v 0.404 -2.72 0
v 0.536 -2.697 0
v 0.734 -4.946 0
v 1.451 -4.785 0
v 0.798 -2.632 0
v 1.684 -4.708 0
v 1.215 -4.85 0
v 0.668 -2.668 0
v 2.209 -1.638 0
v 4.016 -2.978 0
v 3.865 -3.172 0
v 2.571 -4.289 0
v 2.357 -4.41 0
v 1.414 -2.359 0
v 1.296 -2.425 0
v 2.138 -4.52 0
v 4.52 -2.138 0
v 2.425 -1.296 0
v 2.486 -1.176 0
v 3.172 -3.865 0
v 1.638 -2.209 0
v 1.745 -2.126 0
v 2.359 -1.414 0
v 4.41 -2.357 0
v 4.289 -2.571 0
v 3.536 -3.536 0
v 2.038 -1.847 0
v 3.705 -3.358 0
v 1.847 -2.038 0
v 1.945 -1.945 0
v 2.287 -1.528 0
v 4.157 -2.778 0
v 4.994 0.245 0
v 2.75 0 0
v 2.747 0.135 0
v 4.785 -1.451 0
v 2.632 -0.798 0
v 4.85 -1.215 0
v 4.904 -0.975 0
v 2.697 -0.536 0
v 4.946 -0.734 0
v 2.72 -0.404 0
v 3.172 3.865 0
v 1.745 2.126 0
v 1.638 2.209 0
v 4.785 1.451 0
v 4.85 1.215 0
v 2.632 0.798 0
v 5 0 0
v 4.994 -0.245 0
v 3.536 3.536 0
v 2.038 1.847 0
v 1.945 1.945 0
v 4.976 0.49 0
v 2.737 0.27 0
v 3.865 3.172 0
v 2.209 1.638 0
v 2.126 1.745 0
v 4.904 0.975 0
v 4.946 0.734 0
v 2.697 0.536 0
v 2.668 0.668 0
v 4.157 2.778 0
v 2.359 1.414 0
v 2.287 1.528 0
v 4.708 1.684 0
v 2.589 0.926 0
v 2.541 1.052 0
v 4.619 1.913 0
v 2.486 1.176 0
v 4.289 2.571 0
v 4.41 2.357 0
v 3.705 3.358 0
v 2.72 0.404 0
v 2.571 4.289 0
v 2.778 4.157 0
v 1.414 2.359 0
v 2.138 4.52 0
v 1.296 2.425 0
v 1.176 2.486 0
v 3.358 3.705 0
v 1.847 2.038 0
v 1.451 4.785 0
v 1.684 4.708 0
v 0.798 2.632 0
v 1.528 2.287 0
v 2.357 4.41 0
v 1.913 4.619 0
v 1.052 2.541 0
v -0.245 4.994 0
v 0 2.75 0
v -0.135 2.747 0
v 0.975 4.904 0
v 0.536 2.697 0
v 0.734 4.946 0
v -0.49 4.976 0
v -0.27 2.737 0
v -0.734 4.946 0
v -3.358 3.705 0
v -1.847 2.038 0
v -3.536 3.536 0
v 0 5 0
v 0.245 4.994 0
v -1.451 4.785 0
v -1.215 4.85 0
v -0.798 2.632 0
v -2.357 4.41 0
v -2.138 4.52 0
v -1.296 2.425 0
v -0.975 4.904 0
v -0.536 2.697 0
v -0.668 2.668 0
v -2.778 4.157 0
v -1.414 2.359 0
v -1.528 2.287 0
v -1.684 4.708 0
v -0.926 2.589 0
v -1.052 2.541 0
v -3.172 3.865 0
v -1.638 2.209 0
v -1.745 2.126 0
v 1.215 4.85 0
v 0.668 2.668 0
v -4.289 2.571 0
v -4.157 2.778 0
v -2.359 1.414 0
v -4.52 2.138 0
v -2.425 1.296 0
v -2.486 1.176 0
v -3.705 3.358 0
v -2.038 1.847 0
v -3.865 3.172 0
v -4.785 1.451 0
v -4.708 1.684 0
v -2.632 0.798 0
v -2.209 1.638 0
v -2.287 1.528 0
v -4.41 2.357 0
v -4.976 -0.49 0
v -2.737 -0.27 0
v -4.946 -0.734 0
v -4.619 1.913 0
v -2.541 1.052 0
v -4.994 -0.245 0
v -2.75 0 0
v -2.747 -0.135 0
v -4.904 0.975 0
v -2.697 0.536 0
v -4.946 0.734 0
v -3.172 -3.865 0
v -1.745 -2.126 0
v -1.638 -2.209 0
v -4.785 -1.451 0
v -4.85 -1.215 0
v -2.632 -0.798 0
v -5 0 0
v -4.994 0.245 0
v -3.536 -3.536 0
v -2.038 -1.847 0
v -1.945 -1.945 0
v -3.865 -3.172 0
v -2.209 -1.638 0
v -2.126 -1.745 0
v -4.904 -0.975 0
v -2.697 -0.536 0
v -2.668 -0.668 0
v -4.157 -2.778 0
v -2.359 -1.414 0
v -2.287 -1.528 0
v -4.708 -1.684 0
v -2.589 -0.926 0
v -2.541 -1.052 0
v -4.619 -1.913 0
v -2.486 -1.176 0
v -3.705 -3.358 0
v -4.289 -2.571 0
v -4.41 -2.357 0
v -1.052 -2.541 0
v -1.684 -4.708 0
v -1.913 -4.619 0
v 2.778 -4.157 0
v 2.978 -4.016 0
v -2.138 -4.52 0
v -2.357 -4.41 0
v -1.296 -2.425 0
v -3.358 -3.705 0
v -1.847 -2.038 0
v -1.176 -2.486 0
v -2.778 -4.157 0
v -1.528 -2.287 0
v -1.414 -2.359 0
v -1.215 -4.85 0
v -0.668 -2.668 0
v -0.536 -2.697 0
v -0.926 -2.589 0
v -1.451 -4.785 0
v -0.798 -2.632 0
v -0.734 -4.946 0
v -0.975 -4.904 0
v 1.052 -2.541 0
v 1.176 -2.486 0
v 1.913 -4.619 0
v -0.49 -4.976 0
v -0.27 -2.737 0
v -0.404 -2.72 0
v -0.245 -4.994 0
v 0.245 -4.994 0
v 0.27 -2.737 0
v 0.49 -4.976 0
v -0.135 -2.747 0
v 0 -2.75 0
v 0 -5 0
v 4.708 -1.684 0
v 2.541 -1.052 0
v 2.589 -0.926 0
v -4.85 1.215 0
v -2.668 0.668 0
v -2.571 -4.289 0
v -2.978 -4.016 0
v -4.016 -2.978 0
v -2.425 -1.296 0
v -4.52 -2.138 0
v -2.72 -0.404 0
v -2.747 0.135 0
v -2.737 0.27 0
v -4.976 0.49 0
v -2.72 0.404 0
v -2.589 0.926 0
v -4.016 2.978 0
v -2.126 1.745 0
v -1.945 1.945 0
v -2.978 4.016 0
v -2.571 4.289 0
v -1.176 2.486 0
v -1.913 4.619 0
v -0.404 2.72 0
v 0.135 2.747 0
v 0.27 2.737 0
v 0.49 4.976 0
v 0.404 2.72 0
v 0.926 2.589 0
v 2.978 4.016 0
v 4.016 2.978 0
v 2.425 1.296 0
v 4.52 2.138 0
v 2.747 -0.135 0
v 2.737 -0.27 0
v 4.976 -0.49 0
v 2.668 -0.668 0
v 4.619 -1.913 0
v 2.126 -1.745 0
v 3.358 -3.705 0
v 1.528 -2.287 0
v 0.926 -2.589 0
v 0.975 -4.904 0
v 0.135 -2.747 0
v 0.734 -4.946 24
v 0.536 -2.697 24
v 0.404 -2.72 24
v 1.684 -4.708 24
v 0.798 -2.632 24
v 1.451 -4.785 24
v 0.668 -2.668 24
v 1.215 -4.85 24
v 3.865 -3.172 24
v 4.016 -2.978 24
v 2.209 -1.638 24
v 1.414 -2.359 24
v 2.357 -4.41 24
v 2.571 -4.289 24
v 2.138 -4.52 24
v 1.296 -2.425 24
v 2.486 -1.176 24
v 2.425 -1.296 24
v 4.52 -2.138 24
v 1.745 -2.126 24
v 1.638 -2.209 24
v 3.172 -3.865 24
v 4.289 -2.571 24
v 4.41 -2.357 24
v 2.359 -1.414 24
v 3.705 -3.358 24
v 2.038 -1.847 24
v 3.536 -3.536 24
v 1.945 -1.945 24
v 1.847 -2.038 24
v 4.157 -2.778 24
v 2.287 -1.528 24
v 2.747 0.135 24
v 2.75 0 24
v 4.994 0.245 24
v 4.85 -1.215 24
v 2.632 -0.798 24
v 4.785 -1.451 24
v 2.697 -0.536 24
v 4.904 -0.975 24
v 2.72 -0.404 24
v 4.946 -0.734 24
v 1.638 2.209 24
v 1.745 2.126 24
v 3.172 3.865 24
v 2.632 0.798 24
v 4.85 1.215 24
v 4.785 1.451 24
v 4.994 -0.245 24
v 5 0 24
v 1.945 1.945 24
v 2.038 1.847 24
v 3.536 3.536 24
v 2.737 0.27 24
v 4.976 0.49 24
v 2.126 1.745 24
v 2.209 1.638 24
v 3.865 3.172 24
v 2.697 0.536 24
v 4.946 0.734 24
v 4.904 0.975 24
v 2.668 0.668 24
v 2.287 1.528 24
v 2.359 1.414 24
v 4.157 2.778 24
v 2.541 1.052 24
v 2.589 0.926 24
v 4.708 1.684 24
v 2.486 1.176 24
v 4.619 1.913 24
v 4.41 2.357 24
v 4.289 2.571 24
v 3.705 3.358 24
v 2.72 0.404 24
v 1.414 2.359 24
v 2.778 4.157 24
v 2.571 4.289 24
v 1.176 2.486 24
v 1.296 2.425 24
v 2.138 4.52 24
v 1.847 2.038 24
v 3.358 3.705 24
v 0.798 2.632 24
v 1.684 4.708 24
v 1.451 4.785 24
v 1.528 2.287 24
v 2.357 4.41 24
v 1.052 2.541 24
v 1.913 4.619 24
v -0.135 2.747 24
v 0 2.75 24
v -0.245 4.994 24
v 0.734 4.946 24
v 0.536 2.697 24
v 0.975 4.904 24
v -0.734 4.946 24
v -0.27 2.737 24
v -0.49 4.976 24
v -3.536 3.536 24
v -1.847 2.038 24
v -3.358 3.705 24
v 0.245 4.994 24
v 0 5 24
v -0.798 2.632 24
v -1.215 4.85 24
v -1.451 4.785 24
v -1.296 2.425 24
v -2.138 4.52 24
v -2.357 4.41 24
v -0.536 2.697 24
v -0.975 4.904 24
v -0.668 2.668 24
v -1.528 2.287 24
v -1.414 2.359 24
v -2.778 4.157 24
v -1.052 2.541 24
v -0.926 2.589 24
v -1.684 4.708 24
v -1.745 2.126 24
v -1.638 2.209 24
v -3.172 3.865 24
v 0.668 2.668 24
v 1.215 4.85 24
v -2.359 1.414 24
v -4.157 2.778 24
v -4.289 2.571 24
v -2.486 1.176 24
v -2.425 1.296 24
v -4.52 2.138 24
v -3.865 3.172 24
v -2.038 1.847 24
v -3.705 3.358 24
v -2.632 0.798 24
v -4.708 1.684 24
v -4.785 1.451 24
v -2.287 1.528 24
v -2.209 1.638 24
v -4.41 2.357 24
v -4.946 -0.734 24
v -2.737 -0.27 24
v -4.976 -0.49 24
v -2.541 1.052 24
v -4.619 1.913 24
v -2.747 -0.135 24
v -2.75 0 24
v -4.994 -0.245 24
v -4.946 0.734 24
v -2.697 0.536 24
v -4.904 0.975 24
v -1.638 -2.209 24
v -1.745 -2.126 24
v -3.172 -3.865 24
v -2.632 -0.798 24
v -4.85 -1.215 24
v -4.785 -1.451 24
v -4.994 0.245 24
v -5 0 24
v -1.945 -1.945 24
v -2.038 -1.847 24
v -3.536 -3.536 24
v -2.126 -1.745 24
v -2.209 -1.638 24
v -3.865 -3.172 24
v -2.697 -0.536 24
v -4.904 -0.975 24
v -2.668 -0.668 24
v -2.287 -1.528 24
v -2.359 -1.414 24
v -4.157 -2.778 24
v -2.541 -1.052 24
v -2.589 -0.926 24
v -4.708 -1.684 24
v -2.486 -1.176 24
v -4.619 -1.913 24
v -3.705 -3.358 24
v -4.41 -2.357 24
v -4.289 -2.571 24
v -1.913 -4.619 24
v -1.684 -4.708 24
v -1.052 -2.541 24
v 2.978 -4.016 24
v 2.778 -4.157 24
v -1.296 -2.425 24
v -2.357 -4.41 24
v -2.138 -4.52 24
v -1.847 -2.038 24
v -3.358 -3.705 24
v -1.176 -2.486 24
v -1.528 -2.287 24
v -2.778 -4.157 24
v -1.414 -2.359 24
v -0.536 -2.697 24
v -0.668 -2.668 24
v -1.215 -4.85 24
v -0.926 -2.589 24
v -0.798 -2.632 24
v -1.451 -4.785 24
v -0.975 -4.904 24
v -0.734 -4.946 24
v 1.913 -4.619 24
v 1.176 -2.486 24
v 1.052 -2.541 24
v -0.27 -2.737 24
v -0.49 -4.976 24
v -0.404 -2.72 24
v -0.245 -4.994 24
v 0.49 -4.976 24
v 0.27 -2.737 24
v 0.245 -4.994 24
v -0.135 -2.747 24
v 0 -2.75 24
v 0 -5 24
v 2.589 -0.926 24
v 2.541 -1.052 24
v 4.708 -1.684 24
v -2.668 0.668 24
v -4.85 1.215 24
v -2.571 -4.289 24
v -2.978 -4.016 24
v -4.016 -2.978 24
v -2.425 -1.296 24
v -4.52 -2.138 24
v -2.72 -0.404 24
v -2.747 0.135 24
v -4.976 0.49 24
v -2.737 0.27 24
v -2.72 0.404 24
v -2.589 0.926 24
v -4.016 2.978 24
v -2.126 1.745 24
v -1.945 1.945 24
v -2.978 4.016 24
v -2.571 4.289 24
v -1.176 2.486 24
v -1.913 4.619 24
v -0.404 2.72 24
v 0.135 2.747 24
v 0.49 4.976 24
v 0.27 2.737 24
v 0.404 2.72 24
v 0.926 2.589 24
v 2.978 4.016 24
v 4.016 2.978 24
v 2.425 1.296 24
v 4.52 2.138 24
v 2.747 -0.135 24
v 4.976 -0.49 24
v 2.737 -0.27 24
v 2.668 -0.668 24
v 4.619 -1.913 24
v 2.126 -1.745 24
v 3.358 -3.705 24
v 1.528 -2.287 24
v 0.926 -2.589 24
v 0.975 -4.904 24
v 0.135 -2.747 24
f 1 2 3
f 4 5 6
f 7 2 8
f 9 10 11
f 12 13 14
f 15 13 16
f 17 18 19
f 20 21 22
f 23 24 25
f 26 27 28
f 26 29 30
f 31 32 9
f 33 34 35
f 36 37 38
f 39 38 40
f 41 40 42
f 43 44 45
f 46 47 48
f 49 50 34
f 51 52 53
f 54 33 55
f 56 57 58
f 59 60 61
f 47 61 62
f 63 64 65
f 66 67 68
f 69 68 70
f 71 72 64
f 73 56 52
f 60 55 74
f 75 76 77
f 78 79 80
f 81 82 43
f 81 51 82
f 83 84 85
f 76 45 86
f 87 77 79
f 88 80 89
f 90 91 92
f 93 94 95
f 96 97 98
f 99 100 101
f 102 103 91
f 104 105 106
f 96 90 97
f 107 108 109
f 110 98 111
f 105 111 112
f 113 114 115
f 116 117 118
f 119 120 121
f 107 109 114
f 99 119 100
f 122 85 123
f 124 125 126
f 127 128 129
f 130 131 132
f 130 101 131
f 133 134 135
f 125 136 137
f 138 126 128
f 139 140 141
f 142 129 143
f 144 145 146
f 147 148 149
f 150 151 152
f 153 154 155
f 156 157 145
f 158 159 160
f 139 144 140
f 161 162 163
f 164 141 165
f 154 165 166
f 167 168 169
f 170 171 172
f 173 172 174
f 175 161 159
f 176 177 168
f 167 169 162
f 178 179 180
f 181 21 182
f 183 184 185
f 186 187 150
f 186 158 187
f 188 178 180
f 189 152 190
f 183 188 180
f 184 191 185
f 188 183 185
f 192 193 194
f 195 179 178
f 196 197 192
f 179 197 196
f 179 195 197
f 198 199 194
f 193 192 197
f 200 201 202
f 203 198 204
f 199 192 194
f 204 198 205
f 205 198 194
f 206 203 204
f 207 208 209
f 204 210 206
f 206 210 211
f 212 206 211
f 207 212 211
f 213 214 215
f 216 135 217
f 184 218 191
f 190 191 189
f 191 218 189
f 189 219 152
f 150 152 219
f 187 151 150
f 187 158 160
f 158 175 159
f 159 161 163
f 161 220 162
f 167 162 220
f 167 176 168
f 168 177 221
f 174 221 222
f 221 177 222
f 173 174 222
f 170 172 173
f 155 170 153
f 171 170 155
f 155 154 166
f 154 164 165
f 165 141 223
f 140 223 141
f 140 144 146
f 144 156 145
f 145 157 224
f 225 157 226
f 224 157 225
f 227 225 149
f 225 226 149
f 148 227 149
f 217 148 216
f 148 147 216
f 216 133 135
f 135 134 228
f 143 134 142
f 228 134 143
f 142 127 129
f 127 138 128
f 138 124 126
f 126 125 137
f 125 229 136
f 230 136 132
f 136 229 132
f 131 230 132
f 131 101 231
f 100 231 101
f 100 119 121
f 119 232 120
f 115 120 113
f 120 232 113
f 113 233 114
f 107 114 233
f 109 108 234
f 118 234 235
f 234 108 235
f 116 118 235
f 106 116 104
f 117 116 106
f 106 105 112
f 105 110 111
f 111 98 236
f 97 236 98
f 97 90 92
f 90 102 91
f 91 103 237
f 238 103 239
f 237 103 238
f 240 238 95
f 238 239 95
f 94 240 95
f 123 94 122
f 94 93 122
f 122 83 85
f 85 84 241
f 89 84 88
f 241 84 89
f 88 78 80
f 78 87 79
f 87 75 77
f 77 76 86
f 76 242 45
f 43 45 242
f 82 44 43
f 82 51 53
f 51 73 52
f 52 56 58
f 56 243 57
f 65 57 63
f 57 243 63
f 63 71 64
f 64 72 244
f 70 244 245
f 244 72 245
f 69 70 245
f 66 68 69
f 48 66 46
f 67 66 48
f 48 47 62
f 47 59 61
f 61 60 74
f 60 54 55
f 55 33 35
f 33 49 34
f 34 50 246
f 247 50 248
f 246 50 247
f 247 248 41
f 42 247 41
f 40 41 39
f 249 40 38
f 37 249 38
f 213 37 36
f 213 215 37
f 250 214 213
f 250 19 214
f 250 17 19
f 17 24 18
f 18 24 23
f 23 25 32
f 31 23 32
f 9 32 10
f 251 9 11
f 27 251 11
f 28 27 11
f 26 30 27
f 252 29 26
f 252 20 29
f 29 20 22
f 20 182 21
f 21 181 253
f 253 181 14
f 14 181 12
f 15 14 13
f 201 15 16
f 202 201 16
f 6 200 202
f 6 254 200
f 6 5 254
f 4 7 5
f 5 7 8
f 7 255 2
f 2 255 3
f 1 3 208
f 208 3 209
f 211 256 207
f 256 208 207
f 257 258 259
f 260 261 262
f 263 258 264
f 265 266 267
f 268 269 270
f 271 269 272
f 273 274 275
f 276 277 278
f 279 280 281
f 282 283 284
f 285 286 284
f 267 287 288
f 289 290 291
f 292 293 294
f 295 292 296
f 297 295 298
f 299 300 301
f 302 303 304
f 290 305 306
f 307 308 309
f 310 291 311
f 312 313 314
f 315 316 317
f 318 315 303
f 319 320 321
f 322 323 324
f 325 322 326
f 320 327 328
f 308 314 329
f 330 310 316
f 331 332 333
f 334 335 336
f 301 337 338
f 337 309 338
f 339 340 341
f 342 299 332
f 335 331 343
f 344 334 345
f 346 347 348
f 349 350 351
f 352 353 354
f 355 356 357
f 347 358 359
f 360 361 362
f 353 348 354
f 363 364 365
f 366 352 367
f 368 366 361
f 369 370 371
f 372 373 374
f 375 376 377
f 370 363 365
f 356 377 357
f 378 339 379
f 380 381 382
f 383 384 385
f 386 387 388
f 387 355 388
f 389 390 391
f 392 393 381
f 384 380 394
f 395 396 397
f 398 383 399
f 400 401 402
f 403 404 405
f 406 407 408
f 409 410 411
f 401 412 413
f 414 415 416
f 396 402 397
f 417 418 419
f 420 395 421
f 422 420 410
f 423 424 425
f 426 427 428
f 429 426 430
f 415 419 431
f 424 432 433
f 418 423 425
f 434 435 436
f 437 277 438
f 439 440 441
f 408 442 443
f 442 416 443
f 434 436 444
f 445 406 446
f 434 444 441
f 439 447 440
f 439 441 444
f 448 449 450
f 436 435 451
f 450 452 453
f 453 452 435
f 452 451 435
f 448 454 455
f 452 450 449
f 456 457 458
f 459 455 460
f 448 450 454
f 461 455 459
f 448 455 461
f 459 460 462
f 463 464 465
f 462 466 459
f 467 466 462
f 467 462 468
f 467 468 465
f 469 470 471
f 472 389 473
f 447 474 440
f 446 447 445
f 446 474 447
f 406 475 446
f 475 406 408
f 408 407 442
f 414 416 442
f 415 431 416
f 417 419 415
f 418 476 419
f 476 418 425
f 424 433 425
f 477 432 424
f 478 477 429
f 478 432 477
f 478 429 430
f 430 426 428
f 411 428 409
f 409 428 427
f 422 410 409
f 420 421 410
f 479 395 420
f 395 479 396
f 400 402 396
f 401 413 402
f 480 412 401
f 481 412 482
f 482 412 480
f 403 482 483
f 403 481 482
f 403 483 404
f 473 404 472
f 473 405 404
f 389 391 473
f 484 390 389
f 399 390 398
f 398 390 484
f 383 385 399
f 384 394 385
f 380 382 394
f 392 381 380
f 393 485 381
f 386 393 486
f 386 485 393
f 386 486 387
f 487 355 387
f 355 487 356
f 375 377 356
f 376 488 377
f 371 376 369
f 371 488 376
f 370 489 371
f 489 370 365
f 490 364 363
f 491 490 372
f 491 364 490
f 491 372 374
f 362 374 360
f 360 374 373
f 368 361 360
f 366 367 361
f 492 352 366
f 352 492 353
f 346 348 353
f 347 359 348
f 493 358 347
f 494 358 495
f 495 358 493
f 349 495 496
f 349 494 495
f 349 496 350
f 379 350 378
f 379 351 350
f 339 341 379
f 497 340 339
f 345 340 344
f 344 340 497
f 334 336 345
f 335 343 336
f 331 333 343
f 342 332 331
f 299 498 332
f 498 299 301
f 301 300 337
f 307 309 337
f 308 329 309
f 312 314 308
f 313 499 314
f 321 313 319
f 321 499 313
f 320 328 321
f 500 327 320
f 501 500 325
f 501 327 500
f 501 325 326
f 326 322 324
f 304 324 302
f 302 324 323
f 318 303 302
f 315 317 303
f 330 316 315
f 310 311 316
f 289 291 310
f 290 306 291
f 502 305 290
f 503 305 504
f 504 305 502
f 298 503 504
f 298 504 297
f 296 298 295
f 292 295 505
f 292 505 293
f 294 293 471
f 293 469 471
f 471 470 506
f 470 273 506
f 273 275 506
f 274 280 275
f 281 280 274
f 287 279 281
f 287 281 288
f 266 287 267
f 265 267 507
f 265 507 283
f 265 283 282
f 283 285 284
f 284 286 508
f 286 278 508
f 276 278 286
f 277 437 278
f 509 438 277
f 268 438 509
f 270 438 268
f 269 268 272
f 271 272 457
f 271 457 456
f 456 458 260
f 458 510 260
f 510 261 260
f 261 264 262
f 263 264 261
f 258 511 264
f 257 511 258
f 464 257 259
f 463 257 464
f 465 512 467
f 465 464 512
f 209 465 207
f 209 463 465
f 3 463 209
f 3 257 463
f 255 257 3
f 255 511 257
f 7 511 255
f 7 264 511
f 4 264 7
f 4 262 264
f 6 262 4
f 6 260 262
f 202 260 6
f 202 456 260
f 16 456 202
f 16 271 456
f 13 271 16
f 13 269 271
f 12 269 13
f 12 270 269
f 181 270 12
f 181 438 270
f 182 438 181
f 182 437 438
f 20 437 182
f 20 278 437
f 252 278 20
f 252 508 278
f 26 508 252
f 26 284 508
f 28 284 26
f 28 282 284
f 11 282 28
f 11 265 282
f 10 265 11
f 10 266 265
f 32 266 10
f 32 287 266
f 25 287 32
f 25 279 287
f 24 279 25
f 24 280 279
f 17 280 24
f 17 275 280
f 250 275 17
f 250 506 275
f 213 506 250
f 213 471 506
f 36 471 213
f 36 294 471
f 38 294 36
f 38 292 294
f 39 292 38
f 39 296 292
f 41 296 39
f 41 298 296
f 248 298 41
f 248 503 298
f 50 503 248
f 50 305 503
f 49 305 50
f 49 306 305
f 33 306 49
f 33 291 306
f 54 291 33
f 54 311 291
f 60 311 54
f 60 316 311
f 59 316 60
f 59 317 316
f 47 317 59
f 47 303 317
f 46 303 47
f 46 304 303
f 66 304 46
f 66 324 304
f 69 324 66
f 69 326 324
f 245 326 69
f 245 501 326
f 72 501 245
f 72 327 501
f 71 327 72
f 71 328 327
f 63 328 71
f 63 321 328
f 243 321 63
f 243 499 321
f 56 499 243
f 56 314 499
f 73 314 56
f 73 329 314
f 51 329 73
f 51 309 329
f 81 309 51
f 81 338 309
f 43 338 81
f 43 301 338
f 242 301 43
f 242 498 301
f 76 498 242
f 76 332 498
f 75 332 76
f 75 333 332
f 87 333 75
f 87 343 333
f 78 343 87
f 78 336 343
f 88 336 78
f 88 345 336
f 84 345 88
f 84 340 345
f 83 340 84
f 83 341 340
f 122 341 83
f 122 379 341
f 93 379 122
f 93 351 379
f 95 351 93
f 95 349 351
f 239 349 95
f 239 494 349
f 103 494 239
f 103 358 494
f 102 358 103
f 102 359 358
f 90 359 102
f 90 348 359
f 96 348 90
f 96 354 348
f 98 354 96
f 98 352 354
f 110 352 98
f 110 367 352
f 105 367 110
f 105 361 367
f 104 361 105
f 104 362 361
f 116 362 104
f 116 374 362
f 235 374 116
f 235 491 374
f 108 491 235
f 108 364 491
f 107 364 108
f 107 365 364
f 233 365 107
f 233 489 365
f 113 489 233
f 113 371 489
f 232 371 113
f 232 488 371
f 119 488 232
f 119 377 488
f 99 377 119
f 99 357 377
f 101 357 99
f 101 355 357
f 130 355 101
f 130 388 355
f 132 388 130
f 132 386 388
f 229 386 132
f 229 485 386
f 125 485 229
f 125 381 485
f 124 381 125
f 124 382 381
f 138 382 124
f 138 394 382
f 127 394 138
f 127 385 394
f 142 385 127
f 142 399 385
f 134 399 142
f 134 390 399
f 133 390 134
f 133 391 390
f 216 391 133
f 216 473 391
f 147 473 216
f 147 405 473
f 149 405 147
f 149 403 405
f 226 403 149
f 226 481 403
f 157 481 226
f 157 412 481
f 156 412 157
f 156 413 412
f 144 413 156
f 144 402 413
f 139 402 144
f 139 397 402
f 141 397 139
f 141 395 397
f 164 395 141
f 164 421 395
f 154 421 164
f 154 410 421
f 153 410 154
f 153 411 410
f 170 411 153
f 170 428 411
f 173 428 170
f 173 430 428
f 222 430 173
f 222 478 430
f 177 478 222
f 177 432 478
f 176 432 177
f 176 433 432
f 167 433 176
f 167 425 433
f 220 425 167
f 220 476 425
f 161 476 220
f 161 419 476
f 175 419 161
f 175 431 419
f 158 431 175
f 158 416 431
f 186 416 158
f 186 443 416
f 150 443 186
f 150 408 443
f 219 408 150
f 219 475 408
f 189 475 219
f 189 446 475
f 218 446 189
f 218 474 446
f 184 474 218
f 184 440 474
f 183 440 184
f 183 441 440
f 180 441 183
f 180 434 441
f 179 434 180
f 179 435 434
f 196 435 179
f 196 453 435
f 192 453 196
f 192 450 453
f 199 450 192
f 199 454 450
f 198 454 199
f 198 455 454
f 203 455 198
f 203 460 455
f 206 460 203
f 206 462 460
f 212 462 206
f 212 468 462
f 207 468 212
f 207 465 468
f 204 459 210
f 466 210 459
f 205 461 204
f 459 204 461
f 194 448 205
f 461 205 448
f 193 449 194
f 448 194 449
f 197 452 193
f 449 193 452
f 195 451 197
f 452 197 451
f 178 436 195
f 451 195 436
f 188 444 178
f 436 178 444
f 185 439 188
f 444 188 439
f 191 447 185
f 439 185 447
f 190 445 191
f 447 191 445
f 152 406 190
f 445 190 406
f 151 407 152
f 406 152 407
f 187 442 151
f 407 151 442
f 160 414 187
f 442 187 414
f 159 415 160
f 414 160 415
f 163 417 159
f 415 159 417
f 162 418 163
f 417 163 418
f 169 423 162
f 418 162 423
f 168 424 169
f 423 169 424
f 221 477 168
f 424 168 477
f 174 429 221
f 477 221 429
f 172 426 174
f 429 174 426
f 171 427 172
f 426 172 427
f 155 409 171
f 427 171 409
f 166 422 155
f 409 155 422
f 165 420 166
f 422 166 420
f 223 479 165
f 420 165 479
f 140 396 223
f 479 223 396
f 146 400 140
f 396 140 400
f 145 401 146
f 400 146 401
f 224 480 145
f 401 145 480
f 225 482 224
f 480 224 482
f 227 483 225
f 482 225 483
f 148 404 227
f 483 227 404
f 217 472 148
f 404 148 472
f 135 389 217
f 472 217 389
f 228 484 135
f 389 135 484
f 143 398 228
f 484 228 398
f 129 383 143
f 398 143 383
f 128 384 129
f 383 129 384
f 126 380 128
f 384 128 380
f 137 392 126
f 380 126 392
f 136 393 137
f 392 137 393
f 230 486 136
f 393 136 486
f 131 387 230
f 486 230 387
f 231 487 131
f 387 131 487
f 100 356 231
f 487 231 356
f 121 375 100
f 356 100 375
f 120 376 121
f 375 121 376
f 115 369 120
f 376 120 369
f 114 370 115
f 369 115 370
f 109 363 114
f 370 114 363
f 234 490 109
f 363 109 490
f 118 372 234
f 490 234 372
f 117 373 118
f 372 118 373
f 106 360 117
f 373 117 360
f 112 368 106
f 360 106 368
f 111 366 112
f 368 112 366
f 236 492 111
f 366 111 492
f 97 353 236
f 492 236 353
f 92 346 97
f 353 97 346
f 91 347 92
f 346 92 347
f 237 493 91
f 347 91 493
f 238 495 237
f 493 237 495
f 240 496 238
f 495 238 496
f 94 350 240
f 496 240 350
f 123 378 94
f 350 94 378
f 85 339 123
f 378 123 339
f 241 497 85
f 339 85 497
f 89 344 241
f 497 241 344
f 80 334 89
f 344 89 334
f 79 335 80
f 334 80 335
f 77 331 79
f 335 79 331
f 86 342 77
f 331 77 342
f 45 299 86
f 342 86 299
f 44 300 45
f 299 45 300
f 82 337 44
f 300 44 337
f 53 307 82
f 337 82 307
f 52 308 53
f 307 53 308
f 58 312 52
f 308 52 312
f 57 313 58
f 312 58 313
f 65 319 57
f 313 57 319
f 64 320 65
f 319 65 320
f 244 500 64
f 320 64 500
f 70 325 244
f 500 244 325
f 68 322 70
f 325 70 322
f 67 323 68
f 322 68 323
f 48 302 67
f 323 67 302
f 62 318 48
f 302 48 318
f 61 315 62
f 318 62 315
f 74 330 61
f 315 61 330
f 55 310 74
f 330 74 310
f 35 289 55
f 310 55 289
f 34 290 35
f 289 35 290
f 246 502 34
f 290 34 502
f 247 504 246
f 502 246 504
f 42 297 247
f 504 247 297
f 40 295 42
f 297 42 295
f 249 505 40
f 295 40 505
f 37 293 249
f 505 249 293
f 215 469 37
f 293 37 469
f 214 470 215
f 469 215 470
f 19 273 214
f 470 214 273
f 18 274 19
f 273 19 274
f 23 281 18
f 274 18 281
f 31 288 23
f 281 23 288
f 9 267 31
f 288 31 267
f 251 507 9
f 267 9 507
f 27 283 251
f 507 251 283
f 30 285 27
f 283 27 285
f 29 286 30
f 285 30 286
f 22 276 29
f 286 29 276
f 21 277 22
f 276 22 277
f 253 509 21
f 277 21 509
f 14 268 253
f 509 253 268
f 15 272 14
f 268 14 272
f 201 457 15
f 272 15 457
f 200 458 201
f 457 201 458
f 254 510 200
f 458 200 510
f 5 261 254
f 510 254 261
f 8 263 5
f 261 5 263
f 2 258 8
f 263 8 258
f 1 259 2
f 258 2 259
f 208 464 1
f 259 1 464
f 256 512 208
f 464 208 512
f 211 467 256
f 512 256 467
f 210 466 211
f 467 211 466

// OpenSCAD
$fn=128;
linear_extrude(height=24, convexity=4) difference() {
  circle(d=10);
  circle(d=5.5);
}
